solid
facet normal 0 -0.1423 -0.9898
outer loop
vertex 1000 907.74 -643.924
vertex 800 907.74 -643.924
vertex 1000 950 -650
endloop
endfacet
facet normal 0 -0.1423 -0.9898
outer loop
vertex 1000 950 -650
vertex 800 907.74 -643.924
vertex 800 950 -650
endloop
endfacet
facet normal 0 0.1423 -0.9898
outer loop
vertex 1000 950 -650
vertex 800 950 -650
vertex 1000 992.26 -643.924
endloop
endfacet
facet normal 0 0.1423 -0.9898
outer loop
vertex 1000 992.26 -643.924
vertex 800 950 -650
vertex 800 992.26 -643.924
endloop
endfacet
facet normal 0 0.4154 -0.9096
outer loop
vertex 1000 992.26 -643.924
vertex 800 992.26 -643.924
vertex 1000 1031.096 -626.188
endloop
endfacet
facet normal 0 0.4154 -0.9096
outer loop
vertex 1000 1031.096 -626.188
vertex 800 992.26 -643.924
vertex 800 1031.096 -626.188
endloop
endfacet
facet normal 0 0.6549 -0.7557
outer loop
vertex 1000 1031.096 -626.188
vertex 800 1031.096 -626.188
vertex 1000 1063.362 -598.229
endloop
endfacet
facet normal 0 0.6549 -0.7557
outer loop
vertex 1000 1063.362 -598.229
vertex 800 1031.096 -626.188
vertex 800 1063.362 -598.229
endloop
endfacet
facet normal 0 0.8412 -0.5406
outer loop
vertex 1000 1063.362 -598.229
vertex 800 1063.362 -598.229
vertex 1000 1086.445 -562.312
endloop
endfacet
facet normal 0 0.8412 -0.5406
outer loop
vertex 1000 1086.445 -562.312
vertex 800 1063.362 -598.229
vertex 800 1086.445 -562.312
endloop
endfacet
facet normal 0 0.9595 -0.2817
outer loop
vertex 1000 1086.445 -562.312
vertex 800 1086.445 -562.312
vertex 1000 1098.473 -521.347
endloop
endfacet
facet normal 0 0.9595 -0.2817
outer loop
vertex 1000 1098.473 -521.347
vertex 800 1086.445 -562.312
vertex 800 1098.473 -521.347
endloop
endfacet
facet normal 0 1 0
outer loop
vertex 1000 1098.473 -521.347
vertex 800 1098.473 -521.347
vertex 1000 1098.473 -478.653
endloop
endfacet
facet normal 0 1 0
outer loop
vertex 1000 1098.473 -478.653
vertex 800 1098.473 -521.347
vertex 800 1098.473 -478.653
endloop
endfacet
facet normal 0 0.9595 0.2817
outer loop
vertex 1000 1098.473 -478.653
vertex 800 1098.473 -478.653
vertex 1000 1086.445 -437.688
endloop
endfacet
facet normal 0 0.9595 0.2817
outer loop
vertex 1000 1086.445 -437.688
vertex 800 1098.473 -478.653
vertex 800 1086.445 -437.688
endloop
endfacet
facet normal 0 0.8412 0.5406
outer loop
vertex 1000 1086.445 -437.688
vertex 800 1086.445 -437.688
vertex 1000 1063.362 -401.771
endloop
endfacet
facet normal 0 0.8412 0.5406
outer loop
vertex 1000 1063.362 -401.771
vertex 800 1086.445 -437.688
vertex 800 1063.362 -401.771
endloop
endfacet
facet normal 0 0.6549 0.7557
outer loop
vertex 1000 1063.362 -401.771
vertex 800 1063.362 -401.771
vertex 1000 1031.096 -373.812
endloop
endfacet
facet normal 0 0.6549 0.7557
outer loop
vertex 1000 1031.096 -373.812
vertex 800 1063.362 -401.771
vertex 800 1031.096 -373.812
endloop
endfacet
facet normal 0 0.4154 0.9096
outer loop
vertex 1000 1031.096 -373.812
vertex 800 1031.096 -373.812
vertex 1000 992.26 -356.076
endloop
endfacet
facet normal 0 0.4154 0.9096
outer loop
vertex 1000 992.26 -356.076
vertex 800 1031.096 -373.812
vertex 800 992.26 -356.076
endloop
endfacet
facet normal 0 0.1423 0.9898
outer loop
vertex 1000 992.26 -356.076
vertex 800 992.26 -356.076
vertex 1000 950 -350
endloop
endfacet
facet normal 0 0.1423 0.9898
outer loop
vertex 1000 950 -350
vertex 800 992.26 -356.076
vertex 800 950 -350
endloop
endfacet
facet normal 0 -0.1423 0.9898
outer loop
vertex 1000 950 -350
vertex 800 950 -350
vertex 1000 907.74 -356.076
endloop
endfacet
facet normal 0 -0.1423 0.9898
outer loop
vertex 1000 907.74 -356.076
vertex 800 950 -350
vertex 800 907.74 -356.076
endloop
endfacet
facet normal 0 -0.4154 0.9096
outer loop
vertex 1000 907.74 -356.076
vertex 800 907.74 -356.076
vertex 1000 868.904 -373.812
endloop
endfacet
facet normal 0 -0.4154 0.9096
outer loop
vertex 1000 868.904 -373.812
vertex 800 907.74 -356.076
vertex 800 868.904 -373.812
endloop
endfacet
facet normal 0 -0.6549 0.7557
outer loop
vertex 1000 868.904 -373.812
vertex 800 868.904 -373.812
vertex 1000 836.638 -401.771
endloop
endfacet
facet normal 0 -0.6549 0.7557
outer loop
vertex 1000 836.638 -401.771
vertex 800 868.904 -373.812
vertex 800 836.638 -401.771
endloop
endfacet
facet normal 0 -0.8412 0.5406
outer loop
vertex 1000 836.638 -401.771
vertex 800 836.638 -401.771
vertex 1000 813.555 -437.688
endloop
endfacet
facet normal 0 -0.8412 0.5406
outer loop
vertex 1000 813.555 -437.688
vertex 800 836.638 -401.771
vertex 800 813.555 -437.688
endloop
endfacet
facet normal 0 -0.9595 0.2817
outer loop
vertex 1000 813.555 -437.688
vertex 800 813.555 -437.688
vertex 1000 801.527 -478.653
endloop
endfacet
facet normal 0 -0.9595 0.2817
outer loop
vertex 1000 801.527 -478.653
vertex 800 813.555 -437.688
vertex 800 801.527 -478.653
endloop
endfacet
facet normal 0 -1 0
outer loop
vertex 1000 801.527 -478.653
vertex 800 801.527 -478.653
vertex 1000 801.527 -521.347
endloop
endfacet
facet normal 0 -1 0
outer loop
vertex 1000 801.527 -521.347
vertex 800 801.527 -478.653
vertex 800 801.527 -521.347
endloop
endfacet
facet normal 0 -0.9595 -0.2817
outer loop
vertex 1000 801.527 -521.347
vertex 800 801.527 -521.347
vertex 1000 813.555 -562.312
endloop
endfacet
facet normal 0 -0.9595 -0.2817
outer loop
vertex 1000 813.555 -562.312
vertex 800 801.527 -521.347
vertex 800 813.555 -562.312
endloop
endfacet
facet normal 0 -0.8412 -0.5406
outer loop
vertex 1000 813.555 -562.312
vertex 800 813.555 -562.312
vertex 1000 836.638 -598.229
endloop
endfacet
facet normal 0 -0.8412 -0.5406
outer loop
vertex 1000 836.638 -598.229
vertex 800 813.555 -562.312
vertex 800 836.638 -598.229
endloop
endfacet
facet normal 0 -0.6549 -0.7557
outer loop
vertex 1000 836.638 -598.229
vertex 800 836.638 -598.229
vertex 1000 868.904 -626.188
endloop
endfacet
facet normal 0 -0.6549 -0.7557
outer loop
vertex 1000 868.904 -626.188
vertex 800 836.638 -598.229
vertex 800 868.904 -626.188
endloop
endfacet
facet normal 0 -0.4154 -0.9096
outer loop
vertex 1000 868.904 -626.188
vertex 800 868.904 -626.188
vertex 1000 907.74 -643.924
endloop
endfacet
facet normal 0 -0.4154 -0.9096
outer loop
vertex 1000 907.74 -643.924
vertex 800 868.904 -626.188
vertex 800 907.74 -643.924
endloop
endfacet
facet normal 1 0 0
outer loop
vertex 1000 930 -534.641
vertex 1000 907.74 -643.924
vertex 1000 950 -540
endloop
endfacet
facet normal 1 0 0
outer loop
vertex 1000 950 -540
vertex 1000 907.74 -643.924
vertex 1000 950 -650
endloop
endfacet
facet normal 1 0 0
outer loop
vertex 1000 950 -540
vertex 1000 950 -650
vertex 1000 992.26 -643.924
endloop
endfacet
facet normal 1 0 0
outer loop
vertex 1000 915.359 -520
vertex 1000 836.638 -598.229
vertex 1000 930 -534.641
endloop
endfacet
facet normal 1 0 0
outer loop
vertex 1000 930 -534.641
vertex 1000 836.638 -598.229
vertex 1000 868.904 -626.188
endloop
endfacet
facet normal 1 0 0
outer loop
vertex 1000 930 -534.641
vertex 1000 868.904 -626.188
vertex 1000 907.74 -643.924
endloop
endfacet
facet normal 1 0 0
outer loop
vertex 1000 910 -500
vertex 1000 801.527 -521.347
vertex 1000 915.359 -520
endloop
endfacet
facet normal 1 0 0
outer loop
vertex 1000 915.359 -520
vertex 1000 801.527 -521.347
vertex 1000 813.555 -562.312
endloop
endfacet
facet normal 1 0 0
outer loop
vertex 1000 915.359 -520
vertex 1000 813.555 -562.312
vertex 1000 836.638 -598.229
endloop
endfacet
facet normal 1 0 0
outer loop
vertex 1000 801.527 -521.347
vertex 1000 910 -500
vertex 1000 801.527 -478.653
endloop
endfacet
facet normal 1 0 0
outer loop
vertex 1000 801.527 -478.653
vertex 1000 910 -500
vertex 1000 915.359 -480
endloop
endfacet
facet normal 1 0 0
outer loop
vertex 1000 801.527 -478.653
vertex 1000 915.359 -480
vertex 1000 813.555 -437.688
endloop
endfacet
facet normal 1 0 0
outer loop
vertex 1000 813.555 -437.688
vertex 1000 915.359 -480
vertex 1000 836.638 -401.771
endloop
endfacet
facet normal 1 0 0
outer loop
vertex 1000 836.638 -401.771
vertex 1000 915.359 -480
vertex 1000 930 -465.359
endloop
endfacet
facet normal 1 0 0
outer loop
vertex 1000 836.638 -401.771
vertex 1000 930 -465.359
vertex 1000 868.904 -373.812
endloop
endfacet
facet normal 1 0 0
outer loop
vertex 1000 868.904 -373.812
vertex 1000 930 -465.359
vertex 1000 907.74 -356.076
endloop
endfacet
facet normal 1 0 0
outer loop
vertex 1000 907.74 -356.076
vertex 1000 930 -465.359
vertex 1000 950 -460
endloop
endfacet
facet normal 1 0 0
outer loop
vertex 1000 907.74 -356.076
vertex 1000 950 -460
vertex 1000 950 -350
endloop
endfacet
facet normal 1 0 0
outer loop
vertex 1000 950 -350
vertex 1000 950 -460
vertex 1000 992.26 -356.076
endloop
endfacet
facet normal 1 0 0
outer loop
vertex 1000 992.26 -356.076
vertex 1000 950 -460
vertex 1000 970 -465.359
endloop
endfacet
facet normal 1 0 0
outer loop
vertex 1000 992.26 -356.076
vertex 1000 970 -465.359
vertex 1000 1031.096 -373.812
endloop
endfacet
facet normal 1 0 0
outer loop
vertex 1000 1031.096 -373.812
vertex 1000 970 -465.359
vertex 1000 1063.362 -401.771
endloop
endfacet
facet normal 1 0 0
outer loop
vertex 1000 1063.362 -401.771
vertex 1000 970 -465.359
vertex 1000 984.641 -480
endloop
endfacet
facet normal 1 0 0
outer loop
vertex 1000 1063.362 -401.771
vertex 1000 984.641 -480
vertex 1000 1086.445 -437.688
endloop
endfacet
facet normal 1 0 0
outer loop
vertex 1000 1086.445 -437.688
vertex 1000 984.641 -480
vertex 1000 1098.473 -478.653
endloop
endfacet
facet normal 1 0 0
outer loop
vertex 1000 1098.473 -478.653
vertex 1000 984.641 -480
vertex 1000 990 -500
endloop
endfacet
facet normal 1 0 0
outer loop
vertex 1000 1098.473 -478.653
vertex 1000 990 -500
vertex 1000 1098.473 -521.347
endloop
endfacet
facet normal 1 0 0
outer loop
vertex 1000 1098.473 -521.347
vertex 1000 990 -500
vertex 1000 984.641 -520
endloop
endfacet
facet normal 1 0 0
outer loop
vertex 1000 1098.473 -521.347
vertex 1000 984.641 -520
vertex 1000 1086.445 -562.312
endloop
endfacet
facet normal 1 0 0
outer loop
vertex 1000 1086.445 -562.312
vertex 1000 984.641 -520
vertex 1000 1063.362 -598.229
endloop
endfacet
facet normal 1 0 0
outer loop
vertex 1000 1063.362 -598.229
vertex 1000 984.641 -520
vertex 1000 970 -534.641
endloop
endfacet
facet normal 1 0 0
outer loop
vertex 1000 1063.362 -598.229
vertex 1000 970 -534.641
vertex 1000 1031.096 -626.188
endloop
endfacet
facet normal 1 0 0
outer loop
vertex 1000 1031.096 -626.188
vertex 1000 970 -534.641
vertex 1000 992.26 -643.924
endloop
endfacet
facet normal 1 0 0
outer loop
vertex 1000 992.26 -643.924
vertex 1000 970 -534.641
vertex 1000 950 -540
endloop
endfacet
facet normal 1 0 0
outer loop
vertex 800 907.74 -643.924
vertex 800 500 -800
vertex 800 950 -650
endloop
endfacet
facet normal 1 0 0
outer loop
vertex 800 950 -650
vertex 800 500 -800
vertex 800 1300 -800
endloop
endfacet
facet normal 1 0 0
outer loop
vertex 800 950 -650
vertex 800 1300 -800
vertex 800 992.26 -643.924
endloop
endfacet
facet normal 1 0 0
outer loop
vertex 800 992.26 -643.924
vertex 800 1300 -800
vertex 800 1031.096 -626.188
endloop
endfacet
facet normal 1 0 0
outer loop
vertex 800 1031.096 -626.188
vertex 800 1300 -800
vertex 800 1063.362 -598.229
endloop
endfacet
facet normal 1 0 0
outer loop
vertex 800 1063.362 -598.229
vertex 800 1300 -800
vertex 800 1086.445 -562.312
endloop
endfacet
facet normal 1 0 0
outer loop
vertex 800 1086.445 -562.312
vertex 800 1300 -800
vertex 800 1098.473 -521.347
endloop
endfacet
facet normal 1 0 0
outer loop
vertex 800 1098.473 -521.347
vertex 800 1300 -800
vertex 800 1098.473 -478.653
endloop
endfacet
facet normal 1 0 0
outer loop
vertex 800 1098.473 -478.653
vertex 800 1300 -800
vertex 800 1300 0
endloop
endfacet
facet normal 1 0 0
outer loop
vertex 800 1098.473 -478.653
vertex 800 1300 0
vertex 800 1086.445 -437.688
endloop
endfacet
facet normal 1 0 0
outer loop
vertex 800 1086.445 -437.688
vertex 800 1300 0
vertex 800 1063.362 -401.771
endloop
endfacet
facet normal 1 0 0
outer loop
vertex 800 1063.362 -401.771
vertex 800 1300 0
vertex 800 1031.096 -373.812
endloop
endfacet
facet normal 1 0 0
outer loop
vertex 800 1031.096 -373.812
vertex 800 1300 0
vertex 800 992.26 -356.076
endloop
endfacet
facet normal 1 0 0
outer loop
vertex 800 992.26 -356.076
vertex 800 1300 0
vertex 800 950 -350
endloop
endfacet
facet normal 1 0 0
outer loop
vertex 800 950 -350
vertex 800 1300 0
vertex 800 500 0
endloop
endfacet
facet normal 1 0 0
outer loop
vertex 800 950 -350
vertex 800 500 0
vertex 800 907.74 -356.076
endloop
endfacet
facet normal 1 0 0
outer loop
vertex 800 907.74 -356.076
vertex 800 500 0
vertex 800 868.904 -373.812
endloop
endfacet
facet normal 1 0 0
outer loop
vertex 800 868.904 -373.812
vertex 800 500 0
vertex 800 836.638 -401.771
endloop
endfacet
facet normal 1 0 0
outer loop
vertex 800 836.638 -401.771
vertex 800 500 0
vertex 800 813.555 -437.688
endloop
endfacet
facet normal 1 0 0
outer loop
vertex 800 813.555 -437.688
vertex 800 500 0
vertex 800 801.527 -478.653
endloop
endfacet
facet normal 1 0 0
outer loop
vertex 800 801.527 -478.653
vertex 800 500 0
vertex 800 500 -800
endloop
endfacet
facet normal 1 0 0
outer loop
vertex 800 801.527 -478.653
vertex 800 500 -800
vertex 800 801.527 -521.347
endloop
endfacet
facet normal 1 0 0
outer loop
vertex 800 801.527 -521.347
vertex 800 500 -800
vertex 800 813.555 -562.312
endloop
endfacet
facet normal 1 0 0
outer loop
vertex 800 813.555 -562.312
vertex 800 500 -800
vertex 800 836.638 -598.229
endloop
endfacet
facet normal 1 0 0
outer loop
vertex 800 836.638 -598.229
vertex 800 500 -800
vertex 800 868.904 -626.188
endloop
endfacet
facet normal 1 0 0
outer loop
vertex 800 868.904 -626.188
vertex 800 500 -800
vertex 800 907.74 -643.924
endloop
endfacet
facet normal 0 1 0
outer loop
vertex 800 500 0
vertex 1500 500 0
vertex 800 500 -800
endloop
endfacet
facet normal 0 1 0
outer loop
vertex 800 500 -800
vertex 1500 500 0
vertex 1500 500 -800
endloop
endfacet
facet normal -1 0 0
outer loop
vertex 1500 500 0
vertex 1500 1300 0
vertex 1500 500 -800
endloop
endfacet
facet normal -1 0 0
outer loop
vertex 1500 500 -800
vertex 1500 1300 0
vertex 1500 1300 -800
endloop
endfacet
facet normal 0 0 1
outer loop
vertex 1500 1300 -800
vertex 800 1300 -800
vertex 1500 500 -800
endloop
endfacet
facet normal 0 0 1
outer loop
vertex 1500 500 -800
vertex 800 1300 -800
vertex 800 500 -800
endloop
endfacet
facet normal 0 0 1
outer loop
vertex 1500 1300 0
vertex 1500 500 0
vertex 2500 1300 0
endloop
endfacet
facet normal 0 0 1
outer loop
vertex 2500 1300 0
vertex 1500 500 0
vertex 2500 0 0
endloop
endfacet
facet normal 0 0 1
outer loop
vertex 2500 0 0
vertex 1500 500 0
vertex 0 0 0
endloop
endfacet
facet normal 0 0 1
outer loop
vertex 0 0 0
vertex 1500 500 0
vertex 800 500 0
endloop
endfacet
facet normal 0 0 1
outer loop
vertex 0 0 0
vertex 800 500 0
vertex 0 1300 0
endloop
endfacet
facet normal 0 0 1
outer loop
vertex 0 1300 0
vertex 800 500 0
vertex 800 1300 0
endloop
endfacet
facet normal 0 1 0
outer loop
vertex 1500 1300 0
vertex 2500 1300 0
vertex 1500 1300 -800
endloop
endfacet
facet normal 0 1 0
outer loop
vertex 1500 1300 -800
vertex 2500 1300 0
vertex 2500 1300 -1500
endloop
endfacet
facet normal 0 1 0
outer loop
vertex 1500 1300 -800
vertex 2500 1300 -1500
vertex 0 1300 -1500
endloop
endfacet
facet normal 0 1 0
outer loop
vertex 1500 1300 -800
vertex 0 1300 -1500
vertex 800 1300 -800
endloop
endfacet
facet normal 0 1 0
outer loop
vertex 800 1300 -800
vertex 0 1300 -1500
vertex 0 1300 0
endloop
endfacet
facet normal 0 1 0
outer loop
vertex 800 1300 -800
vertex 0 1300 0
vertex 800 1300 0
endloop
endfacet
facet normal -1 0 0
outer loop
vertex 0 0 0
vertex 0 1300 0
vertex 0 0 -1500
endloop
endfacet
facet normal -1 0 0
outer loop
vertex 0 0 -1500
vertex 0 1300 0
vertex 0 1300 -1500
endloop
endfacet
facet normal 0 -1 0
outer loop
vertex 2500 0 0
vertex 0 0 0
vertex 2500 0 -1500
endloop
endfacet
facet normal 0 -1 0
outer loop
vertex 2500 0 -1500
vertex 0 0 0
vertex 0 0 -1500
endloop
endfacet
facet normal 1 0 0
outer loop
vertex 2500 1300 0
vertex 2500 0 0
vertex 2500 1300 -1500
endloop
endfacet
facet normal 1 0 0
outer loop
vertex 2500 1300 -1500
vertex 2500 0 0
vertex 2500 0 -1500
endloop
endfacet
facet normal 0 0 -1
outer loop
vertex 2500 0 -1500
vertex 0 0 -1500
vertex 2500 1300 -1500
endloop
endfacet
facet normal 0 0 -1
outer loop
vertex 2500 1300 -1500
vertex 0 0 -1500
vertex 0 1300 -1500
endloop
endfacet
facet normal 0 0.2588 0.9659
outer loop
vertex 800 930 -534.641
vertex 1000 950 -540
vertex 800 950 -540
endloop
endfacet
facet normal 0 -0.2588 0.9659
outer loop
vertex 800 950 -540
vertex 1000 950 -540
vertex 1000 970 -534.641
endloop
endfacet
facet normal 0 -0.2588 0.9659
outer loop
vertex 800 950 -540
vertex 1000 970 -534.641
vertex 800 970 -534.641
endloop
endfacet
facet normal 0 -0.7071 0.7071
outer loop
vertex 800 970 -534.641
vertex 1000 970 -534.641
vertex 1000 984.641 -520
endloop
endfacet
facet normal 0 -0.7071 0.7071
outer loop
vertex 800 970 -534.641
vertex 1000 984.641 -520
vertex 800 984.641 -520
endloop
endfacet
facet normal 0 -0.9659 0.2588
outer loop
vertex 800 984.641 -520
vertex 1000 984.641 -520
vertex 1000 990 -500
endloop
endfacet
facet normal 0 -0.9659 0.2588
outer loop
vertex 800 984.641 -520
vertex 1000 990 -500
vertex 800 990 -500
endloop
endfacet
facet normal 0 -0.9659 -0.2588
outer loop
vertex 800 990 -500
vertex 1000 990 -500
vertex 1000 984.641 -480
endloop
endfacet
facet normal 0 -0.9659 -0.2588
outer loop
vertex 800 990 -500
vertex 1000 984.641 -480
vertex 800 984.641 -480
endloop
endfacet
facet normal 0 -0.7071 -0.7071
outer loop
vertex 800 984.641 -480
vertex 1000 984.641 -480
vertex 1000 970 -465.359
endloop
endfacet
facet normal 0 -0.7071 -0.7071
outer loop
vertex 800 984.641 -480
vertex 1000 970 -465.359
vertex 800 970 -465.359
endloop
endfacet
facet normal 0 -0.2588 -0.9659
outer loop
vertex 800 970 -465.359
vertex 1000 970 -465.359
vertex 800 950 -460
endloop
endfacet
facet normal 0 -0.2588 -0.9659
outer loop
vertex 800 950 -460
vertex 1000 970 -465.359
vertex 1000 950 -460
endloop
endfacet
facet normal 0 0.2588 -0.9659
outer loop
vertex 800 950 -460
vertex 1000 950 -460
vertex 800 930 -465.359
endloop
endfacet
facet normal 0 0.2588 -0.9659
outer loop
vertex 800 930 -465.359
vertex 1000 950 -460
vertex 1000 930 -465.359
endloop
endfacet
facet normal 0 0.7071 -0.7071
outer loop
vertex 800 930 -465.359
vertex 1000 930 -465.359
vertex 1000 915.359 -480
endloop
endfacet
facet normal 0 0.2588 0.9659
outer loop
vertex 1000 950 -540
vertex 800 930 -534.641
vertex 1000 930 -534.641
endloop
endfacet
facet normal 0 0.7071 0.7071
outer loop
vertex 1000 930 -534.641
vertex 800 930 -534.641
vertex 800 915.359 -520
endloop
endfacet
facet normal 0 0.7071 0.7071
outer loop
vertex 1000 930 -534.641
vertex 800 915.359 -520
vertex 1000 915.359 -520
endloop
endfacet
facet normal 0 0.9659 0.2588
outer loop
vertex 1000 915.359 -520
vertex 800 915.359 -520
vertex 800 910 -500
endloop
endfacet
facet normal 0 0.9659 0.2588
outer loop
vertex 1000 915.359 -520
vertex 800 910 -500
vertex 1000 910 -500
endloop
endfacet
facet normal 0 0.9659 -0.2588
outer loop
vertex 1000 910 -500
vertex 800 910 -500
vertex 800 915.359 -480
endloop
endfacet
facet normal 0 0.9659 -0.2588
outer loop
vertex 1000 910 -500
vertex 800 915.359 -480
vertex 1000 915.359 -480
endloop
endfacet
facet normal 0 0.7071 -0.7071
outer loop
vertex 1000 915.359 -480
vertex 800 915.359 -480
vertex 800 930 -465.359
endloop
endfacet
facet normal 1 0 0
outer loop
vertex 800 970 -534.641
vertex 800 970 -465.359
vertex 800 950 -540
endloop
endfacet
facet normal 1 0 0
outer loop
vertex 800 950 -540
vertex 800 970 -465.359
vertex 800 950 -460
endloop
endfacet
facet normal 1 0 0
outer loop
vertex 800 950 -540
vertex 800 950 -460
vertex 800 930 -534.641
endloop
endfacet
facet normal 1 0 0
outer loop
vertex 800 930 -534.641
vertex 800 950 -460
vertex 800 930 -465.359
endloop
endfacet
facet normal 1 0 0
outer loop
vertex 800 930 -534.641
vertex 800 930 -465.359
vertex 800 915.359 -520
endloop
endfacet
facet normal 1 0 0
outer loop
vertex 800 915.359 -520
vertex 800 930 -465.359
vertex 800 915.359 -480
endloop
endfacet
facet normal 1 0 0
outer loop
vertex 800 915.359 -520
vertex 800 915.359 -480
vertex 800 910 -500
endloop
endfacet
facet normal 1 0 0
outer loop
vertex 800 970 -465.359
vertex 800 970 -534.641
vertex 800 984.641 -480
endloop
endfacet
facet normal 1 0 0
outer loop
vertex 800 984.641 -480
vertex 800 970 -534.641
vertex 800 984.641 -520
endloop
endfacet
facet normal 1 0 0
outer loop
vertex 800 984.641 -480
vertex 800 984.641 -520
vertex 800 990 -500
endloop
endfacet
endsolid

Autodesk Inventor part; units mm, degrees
ref_plane "YZ Plane" through (0, 0, 0) normal (1, 0, 0) x (0, 1, 0)
ref_plane "XZ Plane" through (0, 0, 0) normal (0, 1, 0) x (-1, 0, 0)
ref_plane "XY Plane" through (0, 0, 0) normal (0, 0, 1) x (1, 0, 0)
sketch "Boceto1" plane through (0, 0, 0) normal (0, 0, 1) x (1, 0, 0)
  line L0 (0, 0) -> (2500, 0)
  line L1 (2500, 0) -> (2500, 1300)
  line L2 (2500, 1300) -> (0, 1300)
  line L3 (0, 1300) -> (0, 0)
  dimension "d0" = 2500
  dimension "d1" = 1300
extrude "Extrusión1" add sketch "Boceto1" against normal blind 1500
sketch "Boceto2" plane through (0, 0, 0) normal (0, 0, 1) x (1, 0, 0)
  line L0 (800, 1300) -> (800, 500)
  line L1 (800, 500) -> (1500, 500)
  line L2 (1500, 500) -> (1500, 1300)
  line L3 (1500, 1300) -> (800, 1300)
  line L4 (0, 1300) -> (2500, 1300) projected
  point P0 (0, 0)
  dimension "d4" = 800
  dimension "d5" = 800
  dimension "d6" = 700
extrude "Extrusión2" cut sketch "Boceto2" against normal blind 800
sketch "Boceto3" plane through (800, 500, 0) normal (1, 0, 0) x (0, 0, -1)
  circle A0 centre (500, 450) radius 150
  line L0 (0, 0) -> (0, 800) projected
  line L1 (0, 0) -> (800, 0) projected
  point P0 (0, -500)
  dimension "d9" = 300
  dimension "d10" = 500
  dimension "d11" = 450
extrude "Extrusión3" add sketch "Boceto3" along normal blind 200
sketch "Boceto4" plane through (1000, 950, -500) normal (1, 0, 0) x (0, 0, -1)
  circle A0 centre (0, 0) radius 40
  point P0 (-500, -950)
  dimension "d14" = 80
extrude "Extrusión4" cut sketch "Boceto4" against normal blind 200
properties part number "Torno"
